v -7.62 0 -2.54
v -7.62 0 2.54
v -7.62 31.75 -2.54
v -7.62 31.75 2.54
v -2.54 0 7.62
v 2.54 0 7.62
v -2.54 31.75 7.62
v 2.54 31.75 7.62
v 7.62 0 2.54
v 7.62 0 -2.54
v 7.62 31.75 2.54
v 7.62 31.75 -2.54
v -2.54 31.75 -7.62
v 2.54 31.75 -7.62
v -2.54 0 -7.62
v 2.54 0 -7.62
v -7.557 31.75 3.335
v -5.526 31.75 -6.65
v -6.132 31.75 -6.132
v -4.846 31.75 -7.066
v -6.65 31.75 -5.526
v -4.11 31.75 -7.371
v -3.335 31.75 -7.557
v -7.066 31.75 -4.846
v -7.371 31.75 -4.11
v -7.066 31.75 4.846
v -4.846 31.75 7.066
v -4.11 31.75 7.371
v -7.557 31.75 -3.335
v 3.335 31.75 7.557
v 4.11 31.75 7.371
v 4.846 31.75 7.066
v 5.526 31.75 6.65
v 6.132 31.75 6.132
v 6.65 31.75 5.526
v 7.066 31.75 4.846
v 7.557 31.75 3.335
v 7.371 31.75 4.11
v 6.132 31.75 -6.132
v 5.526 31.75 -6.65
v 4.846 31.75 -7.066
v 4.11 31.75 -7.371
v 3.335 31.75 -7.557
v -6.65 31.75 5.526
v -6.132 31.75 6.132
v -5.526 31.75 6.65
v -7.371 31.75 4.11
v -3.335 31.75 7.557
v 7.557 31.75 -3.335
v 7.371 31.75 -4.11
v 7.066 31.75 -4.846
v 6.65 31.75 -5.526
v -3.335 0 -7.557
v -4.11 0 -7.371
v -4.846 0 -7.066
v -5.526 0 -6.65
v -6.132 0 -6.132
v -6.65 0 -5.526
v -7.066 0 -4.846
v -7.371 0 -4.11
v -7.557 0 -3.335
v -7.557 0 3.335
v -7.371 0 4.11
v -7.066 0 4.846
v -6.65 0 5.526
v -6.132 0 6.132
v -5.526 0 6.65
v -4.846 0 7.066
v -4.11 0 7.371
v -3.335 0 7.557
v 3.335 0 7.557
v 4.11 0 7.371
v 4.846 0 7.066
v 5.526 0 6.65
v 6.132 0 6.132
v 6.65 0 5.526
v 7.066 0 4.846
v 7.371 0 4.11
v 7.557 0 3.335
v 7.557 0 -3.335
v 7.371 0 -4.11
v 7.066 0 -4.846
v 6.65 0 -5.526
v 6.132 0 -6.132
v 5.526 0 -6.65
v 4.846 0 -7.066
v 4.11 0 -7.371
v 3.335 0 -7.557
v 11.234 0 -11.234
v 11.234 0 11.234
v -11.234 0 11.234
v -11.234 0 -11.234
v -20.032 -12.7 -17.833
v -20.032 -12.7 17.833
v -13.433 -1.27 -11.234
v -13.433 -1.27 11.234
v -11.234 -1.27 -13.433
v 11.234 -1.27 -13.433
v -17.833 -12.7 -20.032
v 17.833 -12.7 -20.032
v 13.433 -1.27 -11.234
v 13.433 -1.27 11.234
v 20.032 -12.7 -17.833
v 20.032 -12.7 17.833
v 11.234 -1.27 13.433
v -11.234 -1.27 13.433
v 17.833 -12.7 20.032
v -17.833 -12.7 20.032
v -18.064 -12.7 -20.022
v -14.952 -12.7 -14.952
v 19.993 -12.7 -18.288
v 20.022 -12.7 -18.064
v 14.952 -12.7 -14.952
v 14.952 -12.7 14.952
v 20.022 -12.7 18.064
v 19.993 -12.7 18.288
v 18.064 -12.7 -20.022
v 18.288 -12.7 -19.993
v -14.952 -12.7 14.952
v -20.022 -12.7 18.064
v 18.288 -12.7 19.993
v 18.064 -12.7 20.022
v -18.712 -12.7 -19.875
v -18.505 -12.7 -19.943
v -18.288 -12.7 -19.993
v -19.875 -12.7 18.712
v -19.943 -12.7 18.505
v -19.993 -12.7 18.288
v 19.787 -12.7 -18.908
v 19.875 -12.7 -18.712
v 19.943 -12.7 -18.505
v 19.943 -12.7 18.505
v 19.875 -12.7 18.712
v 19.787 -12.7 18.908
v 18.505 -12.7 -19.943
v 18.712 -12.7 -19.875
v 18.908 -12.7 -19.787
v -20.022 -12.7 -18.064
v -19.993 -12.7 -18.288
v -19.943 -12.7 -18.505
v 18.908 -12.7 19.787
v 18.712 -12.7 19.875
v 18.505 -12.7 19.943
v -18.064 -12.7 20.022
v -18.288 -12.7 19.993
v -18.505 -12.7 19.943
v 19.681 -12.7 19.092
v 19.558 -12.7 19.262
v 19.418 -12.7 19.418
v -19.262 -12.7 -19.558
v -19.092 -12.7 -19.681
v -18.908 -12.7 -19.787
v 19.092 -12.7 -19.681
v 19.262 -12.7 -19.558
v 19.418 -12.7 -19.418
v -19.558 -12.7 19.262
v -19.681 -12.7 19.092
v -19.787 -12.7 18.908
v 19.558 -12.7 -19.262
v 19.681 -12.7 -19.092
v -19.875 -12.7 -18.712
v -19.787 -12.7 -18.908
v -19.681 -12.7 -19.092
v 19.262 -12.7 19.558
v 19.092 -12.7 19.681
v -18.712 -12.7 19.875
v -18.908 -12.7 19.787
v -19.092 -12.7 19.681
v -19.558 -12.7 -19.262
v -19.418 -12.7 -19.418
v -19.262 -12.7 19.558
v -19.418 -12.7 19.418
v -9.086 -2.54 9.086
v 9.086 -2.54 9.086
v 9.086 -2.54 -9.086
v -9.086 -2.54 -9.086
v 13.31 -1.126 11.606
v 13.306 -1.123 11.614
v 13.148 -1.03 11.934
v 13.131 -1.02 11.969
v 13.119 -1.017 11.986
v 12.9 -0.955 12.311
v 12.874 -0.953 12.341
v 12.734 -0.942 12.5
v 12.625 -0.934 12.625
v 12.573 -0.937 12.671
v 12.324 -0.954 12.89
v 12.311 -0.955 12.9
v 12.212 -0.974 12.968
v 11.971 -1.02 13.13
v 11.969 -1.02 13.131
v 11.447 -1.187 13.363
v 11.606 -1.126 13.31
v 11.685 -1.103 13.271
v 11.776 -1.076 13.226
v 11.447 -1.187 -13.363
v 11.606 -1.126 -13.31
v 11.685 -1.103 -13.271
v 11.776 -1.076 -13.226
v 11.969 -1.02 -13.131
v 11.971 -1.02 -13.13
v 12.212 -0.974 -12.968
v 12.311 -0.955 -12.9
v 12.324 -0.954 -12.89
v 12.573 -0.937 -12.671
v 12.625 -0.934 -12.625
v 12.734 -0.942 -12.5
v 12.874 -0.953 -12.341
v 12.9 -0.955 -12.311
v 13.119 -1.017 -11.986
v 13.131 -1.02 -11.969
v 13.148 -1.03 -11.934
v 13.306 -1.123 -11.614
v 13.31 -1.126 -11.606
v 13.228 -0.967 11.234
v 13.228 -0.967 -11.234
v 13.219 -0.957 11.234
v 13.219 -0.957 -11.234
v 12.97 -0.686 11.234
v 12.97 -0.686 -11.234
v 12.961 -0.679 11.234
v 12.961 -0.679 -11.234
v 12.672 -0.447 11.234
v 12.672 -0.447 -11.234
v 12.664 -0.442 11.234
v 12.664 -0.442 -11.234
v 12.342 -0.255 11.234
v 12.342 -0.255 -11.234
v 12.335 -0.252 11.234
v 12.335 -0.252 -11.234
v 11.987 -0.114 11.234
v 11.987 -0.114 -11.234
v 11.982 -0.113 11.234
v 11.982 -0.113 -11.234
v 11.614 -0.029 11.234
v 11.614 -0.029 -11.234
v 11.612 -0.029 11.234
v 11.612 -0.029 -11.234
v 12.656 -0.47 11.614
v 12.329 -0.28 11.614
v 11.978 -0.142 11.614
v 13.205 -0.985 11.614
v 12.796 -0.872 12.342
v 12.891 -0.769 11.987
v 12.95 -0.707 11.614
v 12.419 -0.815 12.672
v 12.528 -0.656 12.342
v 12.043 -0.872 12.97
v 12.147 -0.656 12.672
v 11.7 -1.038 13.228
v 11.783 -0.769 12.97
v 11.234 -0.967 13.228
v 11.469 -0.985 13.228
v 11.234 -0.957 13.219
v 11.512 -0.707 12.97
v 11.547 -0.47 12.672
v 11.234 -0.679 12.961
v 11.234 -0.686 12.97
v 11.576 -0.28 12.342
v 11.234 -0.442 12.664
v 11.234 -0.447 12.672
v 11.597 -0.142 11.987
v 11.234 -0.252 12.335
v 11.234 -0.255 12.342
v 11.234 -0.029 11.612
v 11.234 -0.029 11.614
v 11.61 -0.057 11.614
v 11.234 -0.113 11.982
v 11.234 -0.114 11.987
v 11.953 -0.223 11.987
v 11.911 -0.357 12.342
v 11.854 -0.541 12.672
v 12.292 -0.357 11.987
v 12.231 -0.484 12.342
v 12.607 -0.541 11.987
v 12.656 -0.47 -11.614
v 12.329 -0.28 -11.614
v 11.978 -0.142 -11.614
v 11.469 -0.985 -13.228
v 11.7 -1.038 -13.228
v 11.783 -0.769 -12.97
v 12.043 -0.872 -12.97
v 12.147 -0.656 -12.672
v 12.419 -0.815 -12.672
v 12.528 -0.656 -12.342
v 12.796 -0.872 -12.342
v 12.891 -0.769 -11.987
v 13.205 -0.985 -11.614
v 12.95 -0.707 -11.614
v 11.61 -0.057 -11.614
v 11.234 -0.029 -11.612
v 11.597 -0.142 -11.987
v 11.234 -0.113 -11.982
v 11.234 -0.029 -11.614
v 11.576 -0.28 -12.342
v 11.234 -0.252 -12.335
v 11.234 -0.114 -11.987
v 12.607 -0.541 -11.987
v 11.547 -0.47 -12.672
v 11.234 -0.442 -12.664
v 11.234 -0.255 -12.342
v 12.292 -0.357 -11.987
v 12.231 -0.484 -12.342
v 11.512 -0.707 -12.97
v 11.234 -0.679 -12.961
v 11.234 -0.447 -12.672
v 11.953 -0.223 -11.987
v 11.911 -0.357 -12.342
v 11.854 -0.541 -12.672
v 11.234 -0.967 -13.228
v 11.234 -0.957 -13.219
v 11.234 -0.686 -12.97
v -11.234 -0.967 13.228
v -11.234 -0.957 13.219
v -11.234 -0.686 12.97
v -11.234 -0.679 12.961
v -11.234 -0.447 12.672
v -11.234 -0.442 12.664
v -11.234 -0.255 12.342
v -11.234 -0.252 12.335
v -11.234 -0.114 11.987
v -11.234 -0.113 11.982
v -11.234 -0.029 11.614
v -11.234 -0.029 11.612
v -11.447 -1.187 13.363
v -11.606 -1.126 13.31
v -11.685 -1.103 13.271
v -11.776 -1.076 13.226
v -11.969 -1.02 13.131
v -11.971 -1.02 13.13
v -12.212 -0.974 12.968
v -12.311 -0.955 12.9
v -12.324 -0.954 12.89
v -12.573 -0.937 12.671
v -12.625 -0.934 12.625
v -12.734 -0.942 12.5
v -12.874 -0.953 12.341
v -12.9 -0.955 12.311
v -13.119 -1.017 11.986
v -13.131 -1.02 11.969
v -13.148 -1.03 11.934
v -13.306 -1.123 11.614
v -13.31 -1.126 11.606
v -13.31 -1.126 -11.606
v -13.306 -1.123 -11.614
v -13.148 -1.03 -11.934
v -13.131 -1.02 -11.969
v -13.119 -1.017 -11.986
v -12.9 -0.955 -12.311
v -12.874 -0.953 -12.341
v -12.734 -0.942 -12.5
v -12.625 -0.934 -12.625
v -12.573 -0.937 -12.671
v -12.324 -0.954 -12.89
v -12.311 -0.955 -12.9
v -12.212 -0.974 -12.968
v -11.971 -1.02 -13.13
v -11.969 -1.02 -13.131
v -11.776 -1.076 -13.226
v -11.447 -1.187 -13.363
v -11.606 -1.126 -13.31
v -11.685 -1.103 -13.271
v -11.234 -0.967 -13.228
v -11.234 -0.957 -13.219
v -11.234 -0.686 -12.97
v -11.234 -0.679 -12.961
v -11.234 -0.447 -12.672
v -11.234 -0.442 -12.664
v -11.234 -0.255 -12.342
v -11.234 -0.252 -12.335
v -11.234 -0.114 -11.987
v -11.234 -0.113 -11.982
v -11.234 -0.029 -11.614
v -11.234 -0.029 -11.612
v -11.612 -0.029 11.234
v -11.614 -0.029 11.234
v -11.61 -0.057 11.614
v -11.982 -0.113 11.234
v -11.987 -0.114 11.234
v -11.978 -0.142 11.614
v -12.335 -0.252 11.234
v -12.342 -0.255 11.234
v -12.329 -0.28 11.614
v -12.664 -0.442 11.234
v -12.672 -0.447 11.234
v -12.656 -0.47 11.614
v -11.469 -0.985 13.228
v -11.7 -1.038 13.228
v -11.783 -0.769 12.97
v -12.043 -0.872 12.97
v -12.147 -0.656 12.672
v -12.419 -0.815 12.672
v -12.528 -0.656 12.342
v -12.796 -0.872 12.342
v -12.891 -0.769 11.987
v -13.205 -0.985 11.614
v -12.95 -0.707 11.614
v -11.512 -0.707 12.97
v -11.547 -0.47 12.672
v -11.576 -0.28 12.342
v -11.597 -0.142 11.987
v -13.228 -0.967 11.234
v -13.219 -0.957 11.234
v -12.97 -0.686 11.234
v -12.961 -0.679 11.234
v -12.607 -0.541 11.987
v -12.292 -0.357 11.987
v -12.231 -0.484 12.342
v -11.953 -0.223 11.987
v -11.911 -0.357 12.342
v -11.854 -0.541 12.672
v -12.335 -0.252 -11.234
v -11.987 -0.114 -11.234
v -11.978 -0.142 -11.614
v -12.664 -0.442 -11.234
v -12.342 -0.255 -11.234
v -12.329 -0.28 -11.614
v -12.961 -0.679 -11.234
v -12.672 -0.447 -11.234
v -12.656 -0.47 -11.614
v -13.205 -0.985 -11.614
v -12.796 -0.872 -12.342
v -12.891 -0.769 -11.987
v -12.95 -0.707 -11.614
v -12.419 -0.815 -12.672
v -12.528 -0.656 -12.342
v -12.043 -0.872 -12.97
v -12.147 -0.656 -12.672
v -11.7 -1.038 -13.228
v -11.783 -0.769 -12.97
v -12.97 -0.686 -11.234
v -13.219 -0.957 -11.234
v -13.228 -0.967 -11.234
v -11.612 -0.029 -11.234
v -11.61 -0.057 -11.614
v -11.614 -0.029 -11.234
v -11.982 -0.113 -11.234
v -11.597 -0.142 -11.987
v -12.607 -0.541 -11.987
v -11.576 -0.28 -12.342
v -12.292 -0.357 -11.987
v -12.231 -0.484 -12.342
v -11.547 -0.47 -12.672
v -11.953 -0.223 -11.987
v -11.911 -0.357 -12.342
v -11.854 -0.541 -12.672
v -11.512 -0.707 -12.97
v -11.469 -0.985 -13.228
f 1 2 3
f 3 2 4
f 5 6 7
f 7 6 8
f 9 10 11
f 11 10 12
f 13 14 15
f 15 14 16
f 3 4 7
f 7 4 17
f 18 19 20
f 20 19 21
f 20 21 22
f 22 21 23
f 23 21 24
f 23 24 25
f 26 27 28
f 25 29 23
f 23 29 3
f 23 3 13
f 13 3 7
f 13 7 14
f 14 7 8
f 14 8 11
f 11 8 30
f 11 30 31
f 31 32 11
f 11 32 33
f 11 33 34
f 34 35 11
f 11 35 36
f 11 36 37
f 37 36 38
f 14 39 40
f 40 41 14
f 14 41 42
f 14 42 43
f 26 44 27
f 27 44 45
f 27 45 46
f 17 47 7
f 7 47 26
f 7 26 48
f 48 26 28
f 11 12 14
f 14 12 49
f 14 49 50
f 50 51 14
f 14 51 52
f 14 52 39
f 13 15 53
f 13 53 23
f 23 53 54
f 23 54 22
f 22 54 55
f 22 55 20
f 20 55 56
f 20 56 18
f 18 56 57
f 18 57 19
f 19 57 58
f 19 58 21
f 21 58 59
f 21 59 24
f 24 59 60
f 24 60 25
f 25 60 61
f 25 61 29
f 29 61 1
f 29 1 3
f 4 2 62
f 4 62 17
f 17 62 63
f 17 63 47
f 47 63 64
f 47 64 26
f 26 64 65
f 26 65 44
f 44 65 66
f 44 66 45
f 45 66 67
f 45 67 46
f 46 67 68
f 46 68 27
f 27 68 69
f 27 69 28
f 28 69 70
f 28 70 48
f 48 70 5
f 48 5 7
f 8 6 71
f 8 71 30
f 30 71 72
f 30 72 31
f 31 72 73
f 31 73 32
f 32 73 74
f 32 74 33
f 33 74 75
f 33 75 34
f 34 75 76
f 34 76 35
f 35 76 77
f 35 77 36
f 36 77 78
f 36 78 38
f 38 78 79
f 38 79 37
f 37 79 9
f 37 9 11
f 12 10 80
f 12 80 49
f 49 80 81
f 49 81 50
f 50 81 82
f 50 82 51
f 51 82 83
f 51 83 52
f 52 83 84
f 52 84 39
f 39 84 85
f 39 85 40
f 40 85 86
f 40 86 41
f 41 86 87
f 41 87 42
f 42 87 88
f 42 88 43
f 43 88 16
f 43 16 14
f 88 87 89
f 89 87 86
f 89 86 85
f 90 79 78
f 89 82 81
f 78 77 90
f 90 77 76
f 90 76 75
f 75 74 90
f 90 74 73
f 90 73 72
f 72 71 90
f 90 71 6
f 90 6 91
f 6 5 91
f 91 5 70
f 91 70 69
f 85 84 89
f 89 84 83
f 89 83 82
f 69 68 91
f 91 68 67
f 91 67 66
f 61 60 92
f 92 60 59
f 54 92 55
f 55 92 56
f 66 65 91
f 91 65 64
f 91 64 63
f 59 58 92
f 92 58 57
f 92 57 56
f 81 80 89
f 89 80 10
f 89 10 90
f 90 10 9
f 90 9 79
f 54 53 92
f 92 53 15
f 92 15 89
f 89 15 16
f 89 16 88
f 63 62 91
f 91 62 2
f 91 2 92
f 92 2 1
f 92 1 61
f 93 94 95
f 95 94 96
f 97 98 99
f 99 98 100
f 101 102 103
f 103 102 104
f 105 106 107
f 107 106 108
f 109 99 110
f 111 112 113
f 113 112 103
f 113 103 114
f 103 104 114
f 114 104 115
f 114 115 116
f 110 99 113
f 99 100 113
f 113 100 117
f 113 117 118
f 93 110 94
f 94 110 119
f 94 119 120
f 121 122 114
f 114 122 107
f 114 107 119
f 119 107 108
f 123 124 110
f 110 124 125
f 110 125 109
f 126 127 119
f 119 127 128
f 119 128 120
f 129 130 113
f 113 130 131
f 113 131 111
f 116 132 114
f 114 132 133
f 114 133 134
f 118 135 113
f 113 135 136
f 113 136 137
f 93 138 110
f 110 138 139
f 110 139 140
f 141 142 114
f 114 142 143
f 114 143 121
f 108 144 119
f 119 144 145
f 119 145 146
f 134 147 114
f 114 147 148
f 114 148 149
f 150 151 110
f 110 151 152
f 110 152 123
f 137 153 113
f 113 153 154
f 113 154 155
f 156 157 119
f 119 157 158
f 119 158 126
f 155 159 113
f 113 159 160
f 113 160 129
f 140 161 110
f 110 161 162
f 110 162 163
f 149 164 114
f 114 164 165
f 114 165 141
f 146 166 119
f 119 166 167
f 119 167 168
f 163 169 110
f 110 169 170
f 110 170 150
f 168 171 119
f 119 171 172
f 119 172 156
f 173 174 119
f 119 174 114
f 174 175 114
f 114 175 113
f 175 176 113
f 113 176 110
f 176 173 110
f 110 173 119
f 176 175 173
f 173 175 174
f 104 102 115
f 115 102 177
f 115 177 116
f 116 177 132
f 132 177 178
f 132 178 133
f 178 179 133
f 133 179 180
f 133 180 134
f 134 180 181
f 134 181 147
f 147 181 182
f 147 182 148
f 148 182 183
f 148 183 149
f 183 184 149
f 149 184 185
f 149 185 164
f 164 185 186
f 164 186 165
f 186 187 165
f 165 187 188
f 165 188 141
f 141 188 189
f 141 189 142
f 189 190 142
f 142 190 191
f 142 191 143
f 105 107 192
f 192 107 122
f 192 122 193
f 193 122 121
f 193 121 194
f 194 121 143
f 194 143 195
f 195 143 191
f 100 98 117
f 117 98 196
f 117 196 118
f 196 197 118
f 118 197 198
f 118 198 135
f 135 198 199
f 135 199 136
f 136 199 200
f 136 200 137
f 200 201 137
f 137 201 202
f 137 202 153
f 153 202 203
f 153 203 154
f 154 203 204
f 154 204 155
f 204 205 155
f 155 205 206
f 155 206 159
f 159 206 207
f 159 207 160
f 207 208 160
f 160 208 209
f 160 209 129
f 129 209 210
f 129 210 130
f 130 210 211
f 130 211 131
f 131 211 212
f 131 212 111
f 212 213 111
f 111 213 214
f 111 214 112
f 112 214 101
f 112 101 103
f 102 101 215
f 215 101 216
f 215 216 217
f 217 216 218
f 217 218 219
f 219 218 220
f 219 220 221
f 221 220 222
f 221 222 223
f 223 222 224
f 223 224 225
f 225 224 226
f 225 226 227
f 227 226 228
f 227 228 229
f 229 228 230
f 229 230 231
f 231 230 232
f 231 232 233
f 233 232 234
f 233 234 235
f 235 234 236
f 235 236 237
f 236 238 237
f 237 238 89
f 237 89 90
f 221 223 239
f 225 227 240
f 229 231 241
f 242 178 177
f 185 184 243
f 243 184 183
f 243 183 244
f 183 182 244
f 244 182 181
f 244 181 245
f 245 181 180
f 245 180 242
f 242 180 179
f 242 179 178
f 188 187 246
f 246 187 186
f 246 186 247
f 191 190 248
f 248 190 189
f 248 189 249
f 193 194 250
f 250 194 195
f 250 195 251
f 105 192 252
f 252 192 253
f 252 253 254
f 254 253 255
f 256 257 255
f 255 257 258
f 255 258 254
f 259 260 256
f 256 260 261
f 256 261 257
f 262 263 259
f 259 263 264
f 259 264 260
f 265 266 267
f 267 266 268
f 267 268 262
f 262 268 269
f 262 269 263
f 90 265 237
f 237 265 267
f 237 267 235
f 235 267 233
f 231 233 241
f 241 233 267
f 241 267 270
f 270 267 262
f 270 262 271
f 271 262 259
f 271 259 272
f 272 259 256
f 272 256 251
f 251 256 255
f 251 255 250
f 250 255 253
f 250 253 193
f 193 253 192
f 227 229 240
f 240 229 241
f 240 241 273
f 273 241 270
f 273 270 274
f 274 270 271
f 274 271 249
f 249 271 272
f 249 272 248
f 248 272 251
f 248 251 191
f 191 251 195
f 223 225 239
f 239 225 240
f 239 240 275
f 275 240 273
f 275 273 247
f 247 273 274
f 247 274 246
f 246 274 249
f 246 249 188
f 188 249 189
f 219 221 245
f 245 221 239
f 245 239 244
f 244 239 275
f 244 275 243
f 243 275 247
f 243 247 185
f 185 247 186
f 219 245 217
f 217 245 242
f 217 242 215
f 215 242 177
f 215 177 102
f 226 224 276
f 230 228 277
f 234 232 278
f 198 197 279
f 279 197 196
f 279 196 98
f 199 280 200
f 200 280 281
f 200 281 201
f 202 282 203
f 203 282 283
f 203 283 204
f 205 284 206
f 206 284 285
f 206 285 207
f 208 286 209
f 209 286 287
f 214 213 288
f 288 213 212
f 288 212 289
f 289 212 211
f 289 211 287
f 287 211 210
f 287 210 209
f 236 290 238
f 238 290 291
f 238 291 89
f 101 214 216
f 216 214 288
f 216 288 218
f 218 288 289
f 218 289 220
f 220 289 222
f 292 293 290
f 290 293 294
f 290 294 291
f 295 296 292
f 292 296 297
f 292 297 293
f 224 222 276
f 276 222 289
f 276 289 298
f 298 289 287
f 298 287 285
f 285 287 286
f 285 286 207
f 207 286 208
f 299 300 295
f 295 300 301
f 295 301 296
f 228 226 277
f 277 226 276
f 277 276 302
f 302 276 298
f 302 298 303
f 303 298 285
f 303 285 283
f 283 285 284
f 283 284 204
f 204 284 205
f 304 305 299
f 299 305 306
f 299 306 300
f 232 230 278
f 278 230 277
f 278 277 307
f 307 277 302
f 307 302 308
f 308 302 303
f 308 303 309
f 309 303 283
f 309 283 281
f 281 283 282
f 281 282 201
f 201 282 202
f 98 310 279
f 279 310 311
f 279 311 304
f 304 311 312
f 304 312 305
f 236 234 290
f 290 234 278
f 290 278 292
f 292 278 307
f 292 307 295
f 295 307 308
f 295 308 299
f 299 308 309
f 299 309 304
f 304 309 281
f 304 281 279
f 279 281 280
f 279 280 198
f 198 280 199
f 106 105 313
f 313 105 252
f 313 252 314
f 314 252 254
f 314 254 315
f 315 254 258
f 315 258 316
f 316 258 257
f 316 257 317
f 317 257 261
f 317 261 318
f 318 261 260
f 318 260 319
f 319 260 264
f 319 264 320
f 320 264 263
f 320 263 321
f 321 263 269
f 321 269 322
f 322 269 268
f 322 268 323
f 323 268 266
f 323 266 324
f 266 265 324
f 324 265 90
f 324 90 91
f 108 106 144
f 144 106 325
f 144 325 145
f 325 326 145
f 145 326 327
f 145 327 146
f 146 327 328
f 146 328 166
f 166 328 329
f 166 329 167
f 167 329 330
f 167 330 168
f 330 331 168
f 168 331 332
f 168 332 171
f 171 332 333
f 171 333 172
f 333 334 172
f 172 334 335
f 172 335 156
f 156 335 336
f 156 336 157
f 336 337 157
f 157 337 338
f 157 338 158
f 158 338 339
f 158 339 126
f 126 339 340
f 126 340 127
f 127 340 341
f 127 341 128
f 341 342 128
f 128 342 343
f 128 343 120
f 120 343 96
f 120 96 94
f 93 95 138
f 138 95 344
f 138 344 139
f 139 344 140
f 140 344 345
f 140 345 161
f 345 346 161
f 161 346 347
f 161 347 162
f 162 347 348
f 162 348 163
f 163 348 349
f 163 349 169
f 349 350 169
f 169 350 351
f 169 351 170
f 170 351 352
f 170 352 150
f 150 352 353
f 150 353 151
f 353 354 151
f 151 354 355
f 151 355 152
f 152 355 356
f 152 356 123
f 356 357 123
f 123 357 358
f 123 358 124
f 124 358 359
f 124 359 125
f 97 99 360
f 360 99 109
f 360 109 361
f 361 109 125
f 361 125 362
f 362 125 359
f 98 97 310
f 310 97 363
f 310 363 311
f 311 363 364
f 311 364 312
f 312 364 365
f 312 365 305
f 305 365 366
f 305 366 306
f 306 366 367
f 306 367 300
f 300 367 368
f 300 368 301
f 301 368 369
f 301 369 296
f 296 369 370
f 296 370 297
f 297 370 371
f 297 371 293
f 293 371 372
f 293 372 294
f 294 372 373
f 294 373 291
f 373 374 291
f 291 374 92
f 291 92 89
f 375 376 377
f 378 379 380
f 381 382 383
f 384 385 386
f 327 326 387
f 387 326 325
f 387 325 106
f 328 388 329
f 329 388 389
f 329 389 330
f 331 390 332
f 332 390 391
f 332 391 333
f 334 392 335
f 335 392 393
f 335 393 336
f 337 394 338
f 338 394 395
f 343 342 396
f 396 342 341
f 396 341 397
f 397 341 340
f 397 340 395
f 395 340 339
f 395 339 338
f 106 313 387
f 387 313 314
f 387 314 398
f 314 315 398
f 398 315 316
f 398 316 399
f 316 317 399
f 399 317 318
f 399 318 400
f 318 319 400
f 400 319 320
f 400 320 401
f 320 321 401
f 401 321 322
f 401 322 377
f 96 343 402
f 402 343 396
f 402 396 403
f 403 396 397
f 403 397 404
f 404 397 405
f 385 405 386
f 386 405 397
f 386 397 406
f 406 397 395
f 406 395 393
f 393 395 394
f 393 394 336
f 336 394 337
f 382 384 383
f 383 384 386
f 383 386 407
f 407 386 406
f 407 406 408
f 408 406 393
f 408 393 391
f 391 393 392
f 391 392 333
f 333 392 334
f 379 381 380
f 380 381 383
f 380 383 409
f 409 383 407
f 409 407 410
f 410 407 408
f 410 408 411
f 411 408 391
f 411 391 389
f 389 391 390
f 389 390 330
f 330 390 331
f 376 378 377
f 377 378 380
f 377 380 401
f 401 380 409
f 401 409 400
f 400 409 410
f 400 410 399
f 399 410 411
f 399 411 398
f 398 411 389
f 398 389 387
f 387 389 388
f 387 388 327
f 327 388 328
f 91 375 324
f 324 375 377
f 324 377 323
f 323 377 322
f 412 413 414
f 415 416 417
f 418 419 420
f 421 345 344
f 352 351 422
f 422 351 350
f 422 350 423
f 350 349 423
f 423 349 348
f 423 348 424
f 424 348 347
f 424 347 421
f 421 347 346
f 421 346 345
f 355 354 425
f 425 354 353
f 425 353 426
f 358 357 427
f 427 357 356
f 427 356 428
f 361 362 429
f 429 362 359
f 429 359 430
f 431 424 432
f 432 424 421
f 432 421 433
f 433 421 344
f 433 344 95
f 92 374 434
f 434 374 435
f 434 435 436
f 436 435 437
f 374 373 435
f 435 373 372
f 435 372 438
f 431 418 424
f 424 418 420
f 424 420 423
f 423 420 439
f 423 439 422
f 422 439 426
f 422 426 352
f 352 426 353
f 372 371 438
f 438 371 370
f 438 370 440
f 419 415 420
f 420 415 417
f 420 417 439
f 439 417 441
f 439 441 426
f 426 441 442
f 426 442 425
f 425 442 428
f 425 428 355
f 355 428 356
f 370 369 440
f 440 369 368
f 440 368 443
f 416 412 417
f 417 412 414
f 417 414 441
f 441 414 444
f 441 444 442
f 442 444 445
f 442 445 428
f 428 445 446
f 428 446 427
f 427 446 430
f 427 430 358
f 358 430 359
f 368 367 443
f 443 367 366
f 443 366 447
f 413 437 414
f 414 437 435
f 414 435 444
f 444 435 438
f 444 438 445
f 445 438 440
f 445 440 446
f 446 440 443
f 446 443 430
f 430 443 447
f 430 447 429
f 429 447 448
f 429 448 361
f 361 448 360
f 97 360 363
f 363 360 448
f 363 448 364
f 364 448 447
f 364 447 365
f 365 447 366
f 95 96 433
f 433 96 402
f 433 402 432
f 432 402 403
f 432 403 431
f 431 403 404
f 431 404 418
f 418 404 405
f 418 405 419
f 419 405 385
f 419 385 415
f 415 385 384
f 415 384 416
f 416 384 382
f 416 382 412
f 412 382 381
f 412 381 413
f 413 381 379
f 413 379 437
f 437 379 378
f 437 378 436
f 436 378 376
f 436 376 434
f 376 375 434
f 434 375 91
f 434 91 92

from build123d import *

# Parameters (mm, degrees)
SKETCH1_W           = 15.24
SKETCH1_H           = 15.24
BOSS_EXTRUDE1_DEPTH = 31.75
FILLET1_R           = 5.08
SKETCH2_W           = 25.4
SKETCH2_H           = 25.4
BOSS_EXTRUDE3_DEPTH = 12.7
BOSS_EXTRUDE3_DRAFT = -30
SKETCH5_W           = 29.904696838
SKETCH5_H           = 29.904696838
CUT_EXTRUDE1_DEPTH  = 10.16
CUT_EXTRUDE1_DRAFT  = -30
FILLET2_R           = 2.54


with BuildPart() as part:
    # Sketch1 → Boss-Extrude1 (new body)
    with BuildSketch(Plane(origin=(0, 0, 0), x_dir=(1, 0, 0), z_dir=(0, 1, 0))):
        Rectangle(SKETCH1_W, SKETCH1_H)
    extrude(amount=BOSS_EXTRUDE1_DEPTH)

    # Fillet1
    fillet1_edges = [part.edges().sort_by_distance(p)[0] for p in [
        (-7.62, 15.875, -7.62),
        (7.62, 15.875, -7.62),
        (7.62, 15.875, 7.62),
        (-7.62, 15.875, 7.62),
    ]]
    fillet(fillet1_edges, radius=FILLET1_R)


with BuildPart() as boss_extrude3_tool:
    # Sketch2 → Boss-Extrude3 (with draft: the straight prism first)
    with BuildSketch(Plane.XZ):
        Rectangle(SKETCH2_W, SKETCH2_H)
    extrude(amount=BOSS_EXTRUDE3_DEPTH)
    # Boss-Extrude3: the draft: its side faces are tilted about the plane it starts from
    boss_extrude3_sides = [boss_extrude3_tool.faces().sort_by_distance(p)[0] for p in [
        (12.7, -6.35, 0),
        (0, -6.35, 12.7),
        (-12.7, -6.35, 0),
        (0, -6.35, -12.7),
    ]]
    draft(boss_extrude3_sides, Plane.XZ, BOSS_EXTRUDE3_DRAFT)


with BuildPart() as part_1:
    add(part.part)

    # Boss-Extrude3: add boss_extrude3_tool
    add(boss_extrude3_tool.part)


with BuildPart() as cut_extrude1_tool:
    # Sketch5 → Cut-Extrude1 (with draft: the straight prism first)
    with BuildSketch(Plane.XZ.offset(12.7)):
        Rectangle(SKETCH5_W, SKETCH5_H)
    extrude(amount=-CUT_EXTRUDE1_DEPTH)
    # Cut-Extrude1: the draft: its side faces are tilted about the plane it starts from
    cut_extrude1_sides = [cut_extrude1_tool.faces().sort_by_distance(p)[0] for p in [
        (-14.952348419, -7.62, 0),
        (0, -7.62, -14.952348419),
        (14.952348419, -7.62, 0),
        (0, -7.62, 14.952348419),
    ]]
    draft(cut_extrude1_sides, Plane.XZ.offset(12.7), CUT_EXTRUDE1_DRAFT)


with BuildPart() as part_2:
    add(part_1.part)

    # Cut-Extrude1: cut by cut_extrude1_tool
    add(cut_extrude1_tool.part, mode=Mode.SUBTRACT)

    # Fillet2
    fillet2_edges = [part_2.edges().sort_by_distance(p)[0] for p in [
        (-12.7, 0, 0),
        (-16.366174209, -6.35, 16.366174209),
        (0, 0, -12.7),
        (-16.366174209, -6.35, -16.366174209),
        (12.7, 0, 0),
        (16.366174209, -6.35, -16.366174209),
        (0, 0, 12.7),
        (16.366174209, -6.35, 16.366174209),
    ]]
    fillet(fillet2_edges, radius=FILLET2_R)


solid = part_2.part
